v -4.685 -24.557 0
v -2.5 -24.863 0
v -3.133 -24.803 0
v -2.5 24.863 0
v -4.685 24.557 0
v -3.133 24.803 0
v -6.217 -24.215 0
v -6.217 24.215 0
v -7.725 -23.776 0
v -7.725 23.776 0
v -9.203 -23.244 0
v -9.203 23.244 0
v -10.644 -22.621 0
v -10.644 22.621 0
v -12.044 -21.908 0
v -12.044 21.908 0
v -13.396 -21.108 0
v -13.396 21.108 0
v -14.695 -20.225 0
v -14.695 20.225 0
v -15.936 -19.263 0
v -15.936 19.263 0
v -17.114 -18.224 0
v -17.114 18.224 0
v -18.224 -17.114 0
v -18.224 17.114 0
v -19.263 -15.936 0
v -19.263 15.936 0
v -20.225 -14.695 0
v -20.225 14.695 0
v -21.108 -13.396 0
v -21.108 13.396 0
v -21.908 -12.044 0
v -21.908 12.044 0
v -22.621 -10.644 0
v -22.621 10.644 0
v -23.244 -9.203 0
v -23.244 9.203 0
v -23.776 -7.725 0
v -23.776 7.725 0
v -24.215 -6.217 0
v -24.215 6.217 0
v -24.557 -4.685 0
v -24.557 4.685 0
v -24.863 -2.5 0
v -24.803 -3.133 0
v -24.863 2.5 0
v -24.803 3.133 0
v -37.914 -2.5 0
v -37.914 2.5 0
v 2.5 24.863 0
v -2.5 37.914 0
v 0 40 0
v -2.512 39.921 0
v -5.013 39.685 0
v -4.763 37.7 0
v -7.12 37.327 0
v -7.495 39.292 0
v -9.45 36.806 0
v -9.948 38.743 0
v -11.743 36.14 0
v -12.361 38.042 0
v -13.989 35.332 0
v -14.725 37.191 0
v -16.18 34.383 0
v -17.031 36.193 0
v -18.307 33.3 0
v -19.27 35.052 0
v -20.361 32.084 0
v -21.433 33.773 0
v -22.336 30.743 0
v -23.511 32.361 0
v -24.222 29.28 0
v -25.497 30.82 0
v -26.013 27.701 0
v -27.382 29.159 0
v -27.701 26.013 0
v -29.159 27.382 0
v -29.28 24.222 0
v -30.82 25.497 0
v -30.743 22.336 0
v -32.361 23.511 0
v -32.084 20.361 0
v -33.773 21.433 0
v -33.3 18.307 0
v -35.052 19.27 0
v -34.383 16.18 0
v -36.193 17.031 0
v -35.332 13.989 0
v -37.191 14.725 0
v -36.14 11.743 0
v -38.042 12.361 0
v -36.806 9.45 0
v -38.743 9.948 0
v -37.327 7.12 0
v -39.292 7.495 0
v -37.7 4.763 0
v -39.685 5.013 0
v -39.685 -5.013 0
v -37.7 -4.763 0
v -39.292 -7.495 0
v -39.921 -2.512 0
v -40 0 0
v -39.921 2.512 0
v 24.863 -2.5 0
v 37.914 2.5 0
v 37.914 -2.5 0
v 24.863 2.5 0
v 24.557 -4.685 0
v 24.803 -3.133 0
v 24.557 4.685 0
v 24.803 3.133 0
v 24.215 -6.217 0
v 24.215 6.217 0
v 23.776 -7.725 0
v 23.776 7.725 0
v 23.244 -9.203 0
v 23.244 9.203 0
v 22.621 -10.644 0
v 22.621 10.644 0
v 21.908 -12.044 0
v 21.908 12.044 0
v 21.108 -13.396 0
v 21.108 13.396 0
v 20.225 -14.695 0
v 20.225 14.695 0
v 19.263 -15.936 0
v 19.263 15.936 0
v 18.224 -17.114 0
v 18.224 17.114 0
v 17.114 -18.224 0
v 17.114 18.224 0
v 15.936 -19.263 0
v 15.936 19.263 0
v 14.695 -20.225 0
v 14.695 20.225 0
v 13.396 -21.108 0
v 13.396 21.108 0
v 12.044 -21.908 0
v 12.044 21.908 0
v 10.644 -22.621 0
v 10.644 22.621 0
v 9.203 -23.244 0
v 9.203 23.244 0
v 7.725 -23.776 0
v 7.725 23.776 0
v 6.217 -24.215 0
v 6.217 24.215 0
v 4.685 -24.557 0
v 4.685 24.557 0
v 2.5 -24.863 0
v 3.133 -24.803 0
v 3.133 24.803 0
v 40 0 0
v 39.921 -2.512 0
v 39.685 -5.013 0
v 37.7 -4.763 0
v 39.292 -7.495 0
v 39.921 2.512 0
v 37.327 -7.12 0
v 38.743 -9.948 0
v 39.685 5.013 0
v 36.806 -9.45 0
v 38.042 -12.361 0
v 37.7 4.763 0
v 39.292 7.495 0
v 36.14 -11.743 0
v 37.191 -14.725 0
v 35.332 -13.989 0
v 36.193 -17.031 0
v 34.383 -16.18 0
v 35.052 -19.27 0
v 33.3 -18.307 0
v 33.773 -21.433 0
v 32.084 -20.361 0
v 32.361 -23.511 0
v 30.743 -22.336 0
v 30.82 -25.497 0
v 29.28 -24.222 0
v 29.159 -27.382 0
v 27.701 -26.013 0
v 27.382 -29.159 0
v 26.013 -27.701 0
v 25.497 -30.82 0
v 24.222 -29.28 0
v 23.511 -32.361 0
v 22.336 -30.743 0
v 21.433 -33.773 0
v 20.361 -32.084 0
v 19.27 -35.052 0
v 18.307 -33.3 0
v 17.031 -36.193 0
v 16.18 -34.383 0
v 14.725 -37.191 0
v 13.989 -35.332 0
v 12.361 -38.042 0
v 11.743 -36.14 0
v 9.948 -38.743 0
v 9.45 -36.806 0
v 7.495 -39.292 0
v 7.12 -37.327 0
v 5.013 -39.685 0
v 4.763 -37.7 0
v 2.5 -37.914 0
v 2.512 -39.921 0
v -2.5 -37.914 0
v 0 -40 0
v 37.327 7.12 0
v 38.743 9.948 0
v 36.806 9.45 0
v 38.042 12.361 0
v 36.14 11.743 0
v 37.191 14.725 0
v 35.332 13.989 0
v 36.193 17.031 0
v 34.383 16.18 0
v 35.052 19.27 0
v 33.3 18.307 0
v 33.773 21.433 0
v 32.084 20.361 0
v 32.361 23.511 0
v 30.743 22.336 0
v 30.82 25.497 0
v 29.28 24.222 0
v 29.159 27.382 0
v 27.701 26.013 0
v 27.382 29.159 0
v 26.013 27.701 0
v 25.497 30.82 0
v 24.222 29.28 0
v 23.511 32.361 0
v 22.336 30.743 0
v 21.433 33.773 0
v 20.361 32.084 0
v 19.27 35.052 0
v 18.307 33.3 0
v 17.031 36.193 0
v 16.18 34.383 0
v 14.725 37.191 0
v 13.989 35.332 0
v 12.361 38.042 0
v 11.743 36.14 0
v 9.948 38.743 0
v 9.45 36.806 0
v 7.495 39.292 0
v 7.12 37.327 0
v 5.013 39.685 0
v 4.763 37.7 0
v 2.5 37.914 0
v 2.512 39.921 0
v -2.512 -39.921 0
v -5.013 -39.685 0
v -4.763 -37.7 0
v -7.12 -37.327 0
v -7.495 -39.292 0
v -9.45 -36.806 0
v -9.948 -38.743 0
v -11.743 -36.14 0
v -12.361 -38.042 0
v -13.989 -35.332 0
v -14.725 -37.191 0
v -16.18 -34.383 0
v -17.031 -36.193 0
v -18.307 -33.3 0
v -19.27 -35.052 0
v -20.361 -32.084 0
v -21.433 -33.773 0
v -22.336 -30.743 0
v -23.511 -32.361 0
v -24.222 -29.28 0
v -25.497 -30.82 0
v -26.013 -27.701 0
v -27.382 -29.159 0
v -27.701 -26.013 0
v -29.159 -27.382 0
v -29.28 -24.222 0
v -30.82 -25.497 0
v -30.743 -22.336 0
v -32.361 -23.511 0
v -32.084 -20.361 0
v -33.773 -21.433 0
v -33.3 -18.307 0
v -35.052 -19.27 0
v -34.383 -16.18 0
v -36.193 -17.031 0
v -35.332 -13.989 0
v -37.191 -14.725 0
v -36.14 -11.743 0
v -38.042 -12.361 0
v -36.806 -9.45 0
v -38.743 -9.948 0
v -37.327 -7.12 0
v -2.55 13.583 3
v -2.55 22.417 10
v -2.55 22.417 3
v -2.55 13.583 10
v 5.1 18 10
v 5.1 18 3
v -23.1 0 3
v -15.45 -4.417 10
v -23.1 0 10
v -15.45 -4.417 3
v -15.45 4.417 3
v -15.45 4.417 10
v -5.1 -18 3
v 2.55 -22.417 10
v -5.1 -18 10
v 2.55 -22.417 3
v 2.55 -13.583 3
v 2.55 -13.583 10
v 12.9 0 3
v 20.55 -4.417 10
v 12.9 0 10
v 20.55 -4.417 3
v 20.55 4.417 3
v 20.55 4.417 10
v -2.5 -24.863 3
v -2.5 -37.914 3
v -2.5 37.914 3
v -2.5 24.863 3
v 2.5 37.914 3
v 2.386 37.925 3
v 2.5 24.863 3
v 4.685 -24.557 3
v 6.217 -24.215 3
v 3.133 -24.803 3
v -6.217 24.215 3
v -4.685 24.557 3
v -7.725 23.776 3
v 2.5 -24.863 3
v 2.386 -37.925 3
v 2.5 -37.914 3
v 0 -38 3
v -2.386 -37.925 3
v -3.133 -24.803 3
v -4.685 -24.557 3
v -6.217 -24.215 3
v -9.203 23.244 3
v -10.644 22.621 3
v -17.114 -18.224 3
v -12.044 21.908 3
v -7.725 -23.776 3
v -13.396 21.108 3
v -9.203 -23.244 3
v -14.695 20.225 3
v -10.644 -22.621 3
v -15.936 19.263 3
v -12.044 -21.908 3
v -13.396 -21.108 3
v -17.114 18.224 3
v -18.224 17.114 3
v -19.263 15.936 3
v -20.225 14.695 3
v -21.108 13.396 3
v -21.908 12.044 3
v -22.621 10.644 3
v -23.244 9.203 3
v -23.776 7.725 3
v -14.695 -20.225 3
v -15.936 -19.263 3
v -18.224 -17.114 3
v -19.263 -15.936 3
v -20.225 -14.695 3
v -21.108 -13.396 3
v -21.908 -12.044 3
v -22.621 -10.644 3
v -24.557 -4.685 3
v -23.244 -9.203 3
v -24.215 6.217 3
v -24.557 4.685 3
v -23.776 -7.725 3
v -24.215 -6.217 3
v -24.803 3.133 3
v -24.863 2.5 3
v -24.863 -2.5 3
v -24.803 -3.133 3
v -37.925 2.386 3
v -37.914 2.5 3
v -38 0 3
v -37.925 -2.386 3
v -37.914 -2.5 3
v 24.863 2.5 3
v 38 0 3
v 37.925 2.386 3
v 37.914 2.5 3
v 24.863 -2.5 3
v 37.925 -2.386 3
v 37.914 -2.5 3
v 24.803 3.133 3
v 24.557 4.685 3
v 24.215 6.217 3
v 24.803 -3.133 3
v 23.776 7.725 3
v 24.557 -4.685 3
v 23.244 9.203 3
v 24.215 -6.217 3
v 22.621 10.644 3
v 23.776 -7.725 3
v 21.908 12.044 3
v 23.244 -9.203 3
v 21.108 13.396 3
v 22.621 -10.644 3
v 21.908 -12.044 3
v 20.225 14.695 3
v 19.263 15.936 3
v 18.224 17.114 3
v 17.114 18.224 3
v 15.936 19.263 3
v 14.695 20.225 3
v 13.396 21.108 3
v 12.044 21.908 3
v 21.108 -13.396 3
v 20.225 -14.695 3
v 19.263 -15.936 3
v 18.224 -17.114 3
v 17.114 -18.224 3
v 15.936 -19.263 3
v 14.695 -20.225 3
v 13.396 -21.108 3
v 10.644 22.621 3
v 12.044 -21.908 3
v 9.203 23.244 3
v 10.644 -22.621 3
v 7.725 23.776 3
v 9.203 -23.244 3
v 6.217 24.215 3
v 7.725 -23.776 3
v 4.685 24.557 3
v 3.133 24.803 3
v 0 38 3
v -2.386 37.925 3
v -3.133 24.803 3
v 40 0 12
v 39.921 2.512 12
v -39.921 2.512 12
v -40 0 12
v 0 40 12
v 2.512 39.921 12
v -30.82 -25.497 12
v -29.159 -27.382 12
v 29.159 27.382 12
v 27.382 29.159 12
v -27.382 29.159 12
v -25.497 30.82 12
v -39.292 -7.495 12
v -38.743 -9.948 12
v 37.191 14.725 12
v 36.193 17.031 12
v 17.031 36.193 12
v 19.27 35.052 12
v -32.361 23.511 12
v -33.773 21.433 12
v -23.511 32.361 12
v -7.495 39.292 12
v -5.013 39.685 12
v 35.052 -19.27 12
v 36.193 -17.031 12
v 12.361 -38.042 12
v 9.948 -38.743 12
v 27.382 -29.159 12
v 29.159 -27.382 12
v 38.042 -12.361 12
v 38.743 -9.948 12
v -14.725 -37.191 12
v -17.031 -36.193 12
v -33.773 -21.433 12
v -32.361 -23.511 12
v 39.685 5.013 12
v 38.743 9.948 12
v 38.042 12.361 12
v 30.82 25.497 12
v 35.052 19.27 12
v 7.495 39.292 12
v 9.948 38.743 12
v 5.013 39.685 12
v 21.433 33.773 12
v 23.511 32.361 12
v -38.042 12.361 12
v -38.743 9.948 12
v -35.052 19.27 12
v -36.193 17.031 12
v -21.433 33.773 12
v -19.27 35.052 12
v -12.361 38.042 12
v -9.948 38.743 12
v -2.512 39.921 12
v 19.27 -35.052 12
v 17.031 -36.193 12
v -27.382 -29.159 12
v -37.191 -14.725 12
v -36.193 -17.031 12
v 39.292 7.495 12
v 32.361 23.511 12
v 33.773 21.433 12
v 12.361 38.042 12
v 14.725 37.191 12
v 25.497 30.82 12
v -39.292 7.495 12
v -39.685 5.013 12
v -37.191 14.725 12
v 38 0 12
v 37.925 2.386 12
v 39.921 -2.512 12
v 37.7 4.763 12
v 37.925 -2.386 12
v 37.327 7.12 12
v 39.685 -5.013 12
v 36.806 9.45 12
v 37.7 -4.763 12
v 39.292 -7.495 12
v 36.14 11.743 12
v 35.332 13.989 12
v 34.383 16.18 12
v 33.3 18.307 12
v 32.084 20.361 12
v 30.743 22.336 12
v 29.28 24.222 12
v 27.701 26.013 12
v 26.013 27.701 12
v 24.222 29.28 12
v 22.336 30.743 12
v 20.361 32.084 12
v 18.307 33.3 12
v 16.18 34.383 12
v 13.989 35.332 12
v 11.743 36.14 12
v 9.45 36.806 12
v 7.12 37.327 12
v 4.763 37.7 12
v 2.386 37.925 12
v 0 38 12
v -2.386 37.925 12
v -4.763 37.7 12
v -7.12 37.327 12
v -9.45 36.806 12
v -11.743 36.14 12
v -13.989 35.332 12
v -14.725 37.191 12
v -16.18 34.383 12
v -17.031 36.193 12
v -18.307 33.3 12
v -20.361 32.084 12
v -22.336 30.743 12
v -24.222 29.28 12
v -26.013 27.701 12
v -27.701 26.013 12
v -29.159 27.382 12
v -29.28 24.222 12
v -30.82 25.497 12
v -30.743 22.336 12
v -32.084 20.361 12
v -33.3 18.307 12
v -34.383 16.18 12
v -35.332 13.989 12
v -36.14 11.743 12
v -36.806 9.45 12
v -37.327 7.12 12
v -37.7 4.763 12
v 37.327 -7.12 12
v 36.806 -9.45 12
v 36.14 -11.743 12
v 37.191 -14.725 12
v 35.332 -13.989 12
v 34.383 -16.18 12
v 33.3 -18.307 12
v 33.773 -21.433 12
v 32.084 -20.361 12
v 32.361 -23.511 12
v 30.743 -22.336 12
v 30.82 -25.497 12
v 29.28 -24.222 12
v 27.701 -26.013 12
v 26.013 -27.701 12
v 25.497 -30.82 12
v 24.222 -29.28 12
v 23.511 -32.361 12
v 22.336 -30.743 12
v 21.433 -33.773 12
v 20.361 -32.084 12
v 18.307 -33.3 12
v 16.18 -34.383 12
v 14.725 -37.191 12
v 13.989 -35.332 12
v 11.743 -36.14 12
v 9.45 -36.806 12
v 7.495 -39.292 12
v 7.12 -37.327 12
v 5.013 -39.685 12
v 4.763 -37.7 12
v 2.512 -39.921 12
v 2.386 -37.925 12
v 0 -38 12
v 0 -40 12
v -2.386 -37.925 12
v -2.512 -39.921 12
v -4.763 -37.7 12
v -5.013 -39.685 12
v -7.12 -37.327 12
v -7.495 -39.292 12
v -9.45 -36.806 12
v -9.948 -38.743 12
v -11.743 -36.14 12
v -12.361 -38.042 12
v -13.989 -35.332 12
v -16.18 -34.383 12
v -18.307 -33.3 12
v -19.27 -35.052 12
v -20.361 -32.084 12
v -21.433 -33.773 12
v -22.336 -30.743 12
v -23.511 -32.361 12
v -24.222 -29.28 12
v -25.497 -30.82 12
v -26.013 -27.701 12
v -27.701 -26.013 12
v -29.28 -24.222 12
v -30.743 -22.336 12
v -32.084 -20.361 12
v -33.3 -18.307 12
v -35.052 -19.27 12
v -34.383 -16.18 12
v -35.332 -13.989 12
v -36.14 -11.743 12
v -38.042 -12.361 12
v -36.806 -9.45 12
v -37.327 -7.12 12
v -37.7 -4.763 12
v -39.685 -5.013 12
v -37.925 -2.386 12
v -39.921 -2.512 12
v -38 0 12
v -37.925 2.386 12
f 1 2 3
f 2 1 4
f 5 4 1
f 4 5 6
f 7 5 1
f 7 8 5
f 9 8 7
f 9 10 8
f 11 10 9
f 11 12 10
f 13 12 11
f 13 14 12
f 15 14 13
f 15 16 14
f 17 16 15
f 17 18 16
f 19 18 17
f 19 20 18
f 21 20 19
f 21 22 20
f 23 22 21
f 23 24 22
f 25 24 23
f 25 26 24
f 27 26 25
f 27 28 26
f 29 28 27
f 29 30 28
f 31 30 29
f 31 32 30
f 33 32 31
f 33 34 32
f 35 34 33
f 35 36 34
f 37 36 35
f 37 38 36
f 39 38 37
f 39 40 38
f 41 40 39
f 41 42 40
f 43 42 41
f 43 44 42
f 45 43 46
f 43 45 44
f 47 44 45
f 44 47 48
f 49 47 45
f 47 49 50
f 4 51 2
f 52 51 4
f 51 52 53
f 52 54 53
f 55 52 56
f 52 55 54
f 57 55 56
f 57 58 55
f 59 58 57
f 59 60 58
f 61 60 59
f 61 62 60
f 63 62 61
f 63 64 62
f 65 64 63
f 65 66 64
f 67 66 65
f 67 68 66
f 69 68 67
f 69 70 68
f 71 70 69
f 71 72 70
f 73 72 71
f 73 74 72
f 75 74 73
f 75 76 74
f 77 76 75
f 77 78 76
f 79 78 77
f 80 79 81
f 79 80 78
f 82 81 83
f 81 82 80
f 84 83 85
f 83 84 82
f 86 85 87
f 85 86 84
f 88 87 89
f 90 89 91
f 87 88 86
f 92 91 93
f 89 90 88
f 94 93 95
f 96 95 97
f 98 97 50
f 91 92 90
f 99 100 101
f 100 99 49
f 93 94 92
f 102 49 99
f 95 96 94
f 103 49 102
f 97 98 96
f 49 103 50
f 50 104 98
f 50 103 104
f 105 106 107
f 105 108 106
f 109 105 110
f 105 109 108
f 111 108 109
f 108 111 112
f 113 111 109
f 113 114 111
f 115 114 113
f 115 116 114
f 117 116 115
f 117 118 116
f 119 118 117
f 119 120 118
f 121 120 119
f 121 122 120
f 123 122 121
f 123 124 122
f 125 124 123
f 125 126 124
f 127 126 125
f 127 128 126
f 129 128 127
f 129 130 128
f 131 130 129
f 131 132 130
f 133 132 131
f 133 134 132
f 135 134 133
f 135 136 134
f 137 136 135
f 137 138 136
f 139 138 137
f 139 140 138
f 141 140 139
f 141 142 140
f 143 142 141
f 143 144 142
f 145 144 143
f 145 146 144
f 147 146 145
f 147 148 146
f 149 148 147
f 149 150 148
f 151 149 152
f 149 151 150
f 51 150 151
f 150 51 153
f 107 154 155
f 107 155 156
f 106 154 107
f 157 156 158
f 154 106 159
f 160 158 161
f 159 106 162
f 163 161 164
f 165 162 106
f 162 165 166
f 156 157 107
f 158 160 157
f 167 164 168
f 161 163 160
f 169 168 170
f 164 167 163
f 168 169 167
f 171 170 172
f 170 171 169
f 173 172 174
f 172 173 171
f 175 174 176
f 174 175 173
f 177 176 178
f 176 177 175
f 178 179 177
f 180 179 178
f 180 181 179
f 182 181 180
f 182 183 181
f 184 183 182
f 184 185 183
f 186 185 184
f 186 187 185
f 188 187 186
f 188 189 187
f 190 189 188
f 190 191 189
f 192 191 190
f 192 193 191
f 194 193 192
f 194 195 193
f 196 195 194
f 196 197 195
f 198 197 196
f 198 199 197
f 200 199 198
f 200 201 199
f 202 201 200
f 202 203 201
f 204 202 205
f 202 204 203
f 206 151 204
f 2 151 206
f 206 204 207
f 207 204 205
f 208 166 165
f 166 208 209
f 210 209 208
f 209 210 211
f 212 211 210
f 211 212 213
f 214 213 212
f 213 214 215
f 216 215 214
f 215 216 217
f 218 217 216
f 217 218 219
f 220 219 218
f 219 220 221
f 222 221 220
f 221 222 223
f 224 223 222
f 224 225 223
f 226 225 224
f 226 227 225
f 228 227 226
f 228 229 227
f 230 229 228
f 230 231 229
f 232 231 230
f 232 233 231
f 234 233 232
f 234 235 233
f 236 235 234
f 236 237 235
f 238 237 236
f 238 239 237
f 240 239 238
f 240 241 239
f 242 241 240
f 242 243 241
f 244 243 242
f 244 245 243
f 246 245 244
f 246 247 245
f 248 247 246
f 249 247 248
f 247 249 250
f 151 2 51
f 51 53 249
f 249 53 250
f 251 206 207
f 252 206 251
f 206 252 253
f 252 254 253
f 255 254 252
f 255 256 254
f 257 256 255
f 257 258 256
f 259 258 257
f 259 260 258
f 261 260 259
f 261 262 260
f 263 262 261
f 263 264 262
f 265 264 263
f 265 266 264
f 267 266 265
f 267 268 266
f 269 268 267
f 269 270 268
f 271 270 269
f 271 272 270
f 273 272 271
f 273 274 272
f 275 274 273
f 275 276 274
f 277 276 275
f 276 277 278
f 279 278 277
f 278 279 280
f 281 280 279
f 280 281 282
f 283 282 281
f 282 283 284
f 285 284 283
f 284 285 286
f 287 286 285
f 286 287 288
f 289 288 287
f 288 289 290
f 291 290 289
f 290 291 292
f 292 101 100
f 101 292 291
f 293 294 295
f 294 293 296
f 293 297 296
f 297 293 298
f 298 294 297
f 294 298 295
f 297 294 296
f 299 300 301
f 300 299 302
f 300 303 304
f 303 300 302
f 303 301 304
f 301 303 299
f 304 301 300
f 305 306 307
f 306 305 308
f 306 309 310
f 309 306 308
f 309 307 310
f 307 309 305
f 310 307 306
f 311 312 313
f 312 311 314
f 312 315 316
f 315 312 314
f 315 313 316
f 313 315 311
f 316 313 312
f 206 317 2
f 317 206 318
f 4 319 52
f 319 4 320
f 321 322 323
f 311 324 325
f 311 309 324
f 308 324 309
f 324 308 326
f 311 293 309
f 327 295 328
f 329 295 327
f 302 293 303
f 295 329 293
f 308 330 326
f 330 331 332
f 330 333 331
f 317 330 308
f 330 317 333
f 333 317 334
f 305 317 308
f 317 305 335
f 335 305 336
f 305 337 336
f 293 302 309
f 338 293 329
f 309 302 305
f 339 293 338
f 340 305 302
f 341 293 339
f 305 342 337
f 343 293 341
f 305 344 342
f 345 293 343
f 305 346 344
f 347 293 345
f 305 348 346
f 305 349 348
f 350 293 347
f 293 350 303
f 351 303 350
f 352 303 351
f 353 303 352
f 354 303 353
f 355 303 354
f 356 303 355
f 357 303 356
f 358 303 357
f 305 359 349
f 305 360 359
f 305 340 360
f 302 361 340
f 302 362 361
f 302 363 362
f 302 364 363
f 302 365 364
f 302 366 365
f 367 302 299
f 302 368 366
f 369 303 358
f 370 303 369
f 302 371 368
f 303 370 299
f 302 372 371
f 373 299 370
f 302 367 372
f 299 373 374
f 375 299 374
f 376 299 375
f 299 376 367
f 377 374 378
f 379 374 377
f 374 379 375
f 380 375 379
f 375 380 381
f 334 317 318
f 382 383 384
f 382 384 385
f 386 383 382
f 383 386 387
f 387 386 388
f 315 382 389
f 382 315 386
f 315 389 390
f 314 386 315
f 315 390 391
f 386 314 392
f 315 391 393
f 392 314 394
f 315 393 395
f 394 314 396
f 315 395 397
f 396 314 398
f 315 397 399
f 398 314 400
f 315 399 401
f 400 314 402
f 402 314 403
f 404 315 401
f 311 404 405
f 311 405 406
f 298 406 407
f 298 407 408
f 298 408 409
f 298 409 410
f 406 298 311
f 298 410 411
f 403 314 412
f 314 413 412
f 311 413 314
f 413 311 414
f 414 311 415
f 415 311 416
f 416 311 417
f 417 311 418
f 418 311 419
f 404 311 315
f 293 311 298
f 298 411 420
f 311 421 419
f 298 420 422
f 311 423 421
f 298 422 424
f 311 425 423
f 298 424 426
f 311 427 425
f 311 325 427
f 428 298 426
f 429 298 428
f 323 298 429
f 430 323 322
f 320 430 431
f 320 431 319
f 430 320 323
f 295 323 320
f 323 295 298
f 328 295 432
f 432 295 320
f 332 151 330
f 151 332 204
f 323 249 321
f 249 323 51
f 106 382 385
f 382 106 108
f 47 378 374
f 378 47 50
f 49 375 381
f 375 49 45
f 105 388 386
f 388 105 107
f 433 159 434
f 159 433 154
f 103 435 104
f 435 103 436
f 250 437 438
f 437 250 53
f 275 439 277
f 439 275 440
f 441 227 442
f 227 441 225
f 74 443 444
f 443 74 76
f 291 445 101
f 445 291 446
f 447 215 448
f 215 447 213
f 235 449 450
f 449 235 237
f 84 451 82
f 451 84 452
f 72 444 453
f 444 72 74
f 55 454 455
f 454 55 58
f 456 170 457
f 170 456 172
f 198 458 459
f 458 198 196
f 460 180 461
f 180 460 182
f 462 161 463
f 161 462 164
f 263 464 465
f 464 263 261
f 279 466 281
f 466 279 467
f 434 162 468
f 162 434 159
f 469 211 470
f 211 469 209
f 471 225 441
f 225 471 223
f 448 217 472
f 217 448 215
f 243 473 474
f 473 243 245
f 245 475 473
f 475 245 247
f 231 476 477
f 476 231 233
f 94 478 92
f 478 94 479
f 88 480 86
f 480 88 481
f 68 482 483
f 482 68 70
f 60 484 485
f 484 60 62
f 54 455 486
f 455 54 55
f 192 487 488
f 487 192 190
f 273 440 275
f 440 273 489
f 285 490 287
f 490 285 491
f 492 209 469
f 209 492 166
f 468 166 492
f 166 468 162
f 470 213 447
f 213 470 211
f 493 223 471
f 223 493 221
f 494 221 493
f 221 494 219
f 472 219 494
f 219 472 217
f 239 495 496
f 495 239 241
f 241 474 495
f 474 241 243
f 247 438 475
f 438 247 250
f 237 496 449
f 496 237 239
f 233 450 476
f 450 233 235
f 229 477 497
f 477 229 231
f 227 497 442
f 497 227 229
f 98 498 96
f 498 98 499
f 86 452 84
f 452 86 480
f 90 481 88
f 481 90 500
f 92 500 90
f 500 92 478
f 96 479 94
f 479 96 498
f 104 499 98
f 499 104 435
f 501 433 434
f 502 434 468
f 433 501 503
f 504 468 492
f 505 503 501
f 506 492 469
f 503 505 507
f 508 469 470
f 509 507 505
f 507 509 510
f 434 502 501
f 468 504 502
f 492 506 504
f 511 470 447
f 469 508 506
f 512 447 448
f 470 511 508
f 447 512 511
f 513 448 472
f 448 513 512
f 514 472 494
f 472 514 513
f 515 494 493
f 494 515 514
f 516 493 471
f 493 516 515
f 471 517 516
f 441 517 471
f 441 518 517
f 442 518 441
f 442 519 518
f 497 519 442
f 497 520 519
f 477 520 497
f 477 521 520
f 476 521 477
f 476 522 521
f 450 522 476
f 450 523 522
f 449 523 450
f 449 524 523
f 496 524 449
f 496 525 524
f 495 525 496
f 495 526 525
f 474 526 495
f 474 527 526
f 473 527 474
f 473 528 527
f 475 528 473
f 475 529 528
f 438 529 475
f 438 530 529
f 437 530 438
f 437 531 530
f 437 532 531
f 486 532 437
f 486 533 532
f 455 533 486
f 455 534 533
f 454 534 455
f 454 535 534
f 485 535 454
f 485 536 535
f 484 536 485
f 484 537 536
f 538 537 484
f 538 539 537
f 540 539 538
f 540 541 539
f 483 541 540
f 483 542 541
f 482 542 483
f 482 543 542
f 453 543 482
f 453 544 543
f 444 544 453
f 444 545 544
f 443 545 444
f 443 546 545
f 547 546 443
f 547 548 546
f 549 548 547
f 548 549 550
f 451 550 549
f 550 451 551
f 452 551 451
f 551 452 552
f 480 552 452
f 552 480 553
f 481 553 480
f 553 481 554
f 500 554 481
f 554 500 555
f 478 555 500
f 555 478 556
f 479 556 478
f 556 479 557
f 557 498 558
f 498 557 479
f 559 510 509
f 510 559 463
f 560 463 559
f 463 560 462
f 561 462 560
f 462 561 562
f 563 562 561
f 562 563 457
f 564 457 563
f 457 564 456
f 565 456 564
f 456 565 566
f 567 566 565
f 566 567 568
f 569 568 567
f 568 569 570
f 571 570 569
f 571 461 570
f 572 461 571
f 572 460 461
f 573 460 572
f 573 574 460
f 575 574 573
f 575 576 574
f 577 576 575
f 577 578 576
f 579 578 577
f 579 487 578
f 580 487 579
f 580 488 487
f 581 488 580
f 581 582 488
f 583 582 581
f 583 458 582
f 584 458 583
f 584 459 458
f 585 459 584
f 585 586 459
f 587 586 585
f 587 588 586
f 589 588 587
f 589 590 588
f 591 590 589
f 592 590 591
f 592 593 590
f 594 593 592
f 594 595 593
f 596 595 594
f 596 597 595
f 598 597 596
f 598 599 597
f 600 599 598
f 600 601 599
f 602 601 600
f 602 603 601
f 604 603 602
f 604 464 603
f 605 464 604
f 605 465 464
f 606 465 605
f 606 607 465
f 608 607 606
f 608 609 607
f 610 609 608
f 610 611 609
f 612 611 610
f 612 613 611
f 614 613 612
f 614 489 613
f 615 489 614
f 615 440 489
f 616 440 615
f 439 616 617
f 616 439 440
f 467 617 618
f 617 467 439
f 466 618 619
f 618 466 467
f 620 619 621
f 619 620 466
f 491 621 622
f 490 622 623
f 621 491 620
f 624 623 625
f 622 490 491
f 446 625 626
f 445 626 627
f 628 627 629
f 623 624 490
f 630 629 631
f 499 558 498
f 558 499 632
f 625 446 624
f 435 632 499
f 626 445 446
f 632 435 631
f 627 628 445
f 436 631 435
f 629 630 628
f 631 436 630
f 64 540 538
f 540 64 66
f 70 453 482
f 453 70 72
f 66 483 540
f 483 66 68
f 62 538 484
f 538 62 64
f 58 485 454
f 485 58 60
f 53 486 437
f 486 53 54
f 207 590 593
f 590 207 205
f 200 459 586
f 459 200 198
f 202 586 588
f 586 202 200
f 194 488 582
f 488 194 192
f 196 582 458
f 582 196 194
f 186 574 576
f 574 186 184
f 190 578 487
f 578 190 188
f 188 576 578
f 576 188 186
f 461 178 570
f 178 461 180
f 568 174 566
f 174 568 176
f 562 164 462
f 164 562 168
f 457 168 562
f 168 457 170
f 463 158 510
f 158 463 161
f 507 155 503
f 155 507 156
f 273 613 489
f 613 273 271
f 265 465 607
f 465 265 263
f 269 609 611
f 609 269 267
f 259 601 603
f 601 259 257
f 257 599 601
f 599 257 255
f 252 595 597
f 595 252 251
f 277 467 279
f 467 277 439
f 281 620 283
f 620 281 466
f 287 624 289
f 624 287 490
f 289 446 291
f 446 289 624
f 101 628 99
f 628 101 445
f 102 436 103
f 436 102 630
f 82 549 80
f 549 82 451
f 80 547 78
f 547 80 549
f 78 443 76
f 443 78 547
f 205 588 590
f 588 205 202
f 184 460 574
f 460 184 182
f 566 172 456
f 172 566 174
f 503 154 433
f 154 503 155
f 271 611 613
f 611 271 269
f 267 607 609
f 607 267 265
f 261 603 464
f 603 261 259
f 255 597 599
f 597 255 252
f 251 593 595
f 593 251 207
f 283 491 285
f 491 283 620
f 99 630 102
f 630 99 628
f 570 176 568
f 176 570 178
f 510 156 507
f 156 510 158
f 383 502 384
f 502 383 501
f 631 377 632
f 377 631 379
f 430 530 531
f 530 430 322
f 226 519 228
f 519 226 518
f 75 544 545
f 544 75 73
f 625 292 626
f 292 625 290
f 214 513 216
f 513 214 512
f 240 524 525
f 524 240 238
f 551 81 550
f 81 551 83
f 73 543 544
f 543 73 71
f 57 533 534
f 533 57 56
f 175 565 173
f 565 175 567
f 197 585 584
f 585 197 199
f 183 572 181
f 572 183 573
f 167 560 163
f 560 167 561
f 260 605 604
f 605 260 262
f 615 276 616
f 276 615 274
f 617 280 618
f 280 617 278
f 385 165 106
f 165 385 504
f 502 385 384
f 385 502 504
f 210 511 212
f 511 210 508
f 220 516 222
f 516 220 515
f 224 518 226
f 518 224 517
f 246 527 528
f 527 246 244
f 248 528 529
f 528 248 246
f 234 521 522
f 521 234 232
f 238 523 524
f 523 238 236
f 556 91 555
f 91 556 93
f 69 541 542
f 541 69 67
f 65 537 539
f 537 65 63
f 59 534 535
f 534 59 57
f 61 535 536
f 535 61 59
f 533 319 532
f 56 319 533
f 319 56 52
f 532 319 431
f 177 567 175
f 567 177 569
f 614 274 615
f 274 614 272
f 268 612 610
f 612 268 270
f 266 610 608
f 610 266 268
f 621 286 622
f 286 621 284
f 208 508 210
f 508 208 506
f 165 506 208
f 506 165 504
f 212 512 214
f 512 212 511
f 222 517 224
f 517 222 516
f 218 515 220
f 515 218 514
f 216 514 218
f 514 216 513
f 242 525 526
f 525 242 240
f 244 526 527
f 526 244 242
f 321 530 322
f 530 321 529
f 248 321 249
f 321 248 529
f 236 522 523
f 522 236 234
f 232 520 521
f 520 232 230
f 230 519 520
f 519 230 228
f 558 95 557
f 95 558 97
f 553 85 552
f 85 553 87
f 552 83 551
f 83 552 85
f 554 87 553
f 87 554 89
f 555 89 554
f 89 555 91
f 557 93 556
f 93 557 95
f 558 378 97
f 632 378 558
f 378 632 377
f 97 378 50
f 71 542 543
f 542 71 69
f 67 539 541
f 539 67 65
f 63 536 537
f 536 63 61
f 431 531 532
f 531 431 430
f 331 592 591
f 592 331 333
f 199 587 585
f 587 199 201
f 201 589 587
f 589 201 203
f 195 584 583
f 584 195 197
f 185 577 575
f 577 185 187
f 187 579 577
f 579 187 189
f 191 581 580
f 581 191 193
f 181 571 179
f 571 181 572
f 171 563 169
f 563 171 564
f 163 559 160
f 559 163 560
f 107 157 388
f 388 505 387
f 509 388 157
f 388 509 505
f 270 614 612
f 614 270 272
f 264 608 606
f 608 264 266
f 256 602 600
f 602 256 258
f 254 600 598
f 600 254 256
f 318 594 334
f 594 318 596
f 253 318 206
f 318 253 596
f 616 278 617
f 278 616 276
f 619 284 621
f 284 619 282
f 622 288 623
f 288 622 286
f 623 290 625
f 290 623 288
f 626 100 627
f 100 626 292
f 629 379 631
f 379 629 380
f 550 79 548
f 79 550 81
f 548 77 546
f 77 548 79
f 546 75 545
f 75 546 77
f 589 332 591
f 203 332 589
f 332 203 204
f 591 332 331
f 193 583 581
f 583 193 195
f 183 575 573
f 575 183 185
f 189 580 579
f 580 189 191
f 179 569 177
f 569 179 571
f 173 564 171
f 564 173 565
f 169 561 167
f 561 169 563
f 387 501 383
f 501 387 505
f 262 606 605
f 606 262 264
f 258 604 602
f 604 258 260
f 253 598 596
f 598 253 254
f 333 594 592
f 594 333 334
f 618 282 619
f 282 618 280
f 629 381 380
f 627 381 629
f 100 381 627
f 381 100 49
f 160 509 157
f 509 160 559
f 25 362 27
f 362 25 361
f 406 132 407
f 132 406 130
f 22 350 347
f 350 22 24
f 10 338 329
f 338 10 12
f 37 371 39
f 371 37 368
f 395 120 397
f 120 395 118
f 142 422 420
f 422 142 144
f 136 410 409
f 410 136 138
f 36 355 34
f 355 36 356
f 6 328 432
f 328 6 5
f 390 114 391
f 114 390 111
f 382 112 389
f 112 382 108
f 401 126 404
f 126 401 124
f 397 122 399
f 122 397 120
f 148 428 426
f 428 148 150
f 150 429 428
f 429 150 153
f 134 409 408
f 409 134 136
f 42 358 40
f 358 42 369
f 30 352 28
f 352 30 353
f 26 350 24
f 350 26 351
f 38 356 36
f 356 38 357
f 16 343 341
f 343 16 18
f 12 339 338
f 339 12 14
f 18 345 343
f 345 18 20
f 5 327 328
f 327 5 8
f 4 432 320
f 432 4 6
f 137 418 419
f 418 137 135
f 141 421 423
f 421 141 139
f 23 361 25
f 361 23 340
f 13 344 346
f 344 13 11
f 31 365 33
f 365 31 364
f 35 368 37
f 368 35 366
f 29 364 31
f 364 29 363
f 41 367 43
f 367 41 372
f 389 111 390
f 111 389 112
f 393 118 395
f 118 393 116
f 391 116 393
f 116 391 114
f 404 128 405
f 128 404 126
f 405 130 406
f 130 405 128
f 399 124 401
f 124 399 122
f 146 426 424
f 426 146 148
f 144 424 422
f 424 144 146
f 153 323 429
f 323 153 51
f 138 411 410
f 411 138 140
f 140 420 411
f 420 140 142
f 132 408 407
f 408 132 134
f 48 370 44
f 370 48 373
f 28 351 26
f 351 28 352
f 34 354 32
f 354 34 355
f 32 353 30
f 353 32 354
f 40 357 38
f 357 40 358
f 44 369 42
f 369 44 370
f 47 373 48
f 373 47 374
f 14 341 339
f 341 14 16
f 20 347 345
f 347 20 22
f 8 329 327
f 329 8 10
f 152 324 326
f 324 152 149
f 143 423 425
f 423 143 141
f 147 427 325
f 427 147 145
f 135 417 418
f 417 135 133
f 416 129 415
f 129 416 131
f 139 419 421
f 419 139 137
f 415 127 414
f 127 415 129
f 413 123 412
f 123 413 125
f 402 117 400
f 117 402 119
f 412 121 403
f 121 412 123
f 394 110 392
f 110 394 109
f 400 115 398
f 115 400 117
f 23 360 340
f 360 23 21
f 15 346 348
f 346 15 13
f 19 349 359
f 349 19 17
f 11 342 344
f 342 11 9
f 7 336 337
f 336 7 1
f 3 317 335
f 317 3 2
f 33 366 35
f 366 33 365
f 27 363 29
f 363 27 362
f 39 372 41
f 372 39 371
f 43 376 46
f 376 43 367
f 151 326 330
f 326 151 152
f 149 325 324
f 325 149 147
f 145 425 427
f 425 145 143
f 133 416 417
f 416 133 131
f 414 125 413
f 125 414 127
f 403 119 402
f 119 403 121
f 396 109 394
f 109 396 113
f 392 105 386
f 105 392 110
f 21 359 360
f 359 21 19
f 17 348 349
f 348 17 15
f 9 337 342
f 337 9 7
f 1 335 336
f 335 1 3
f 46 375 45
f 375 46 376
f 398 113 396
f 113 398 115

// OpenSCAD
// file: utils/triangle_system.scad
//triangle_tube(20, 5, 5);
module triangle_tube(height,radius,wall)
{
  tubify(radius,wall) triangle_prism(height,radius);
}

//Tubifies any regular prism
module tubify(radius,wall)
{
  difference()
  {
    children(0);
    translate([0, 0, -0.1]) scale([(radius-wall)/radius, (radius-wall)/radius, 2]) children(0);
  }
}

module triangle_prism(height,radius)
{
  linear_extrude(height=height) triangle(radius);
}

module triangle(radius)
{
  o=radius/2;		//equivalent to radius*sin(30)
  a=radius*sqrt(3)/2;	//equivalent to radius*cos(30)
  polygon(points=[[-a,-o],[0,radius],[a,-o]],paths=[[0,1,2]]);
}
// main file
/**
* Info TODO
* Interzonas.info create piece mishtohit
**/

//utils triangle suport piece
include <utils/triangle_system.scad>;

//Const cylinder
cylinder_dim = 25;
cylinder_dim_gear =40;
height = 3;

//hole cones
pathRadius=36/2;
num_cap=4;


/**
* Init the piece
**/
main();
module main() {
  difference() {
    cylinder_base(cylinder_dim, height);
    //tabs(pathRadius, num_cap, height);
  }
  cylinder_hole_creator(pathRadius, num_cap, height);
  cyliner_gear(cylinder_dim_gear, height);
}

/**
* Modulo create gear
* TODO
**/
module cyliner_gear(cylinder_dim, height){
  height_gear = 4;
  gear_thickness =2;

  //TODO hardcode position
  translate([0, 0, height-1.5]) {
    cube(size=[5, cylinder_dim*2-0.4, height], center=true);
    cube(size=[cylinder_dim*2-0.4, 5, height], center=true);
  }
    translate([0, 0, height]) {
  }

  difference() {
    cylinder_base(cylinder_dim_gear, height*height_gear);
    cylinder_base(cylinder_dim_gear-gear_thickness, height*height_gear);
  }
}

/**
* Modulo create triagle support
* Params Distence bwteeen of support, num of support, height of support
**/
module cylinder_hole_creator(distancia, numero, alt) {
  triangle_data = [10, 5.1, 5.1, -90];
  for (i=[1:numero])  {
    translate([distancia*cos(i*(360/numero)),distancia*sin(i*(360/numero)),0]){
      if(i == 1){
        colores = "red";
        color(colores) {
          triangle_base(triangle_data[0], triangle_data[1], triangle_data[2], triangle_data[3]);
        }
      } else {
        colores = "green";
        color(colores) {
          triangle_base(triangle_data[0], triangle_data[1], triangle_data[2], -30);
        }
      }
    }
  }
}


/**
* Modulo create tabs of cap
**/
module tabs(distancia, numero, alt) {
  tabs_dimensions = [5, 10, 4];
  position = [-7.5, -5, 2];
  position_x = position[0];
  position_x_opos = abs(position_x) / 2;
  for (i=[1:numero])  {
    translate([distancia*cos(i*(360/numero)),distancia*sin(i*(360/numero)),0]){
      if(i == 1){
        translate([-7.5, -5, 2]) {
          cube(size=tabs_dimensions);
        }

      } else {
        translate([position_x_opos, position[1], position[2]]) {
          cube(size=tabs_dimensions);
        }

      }
    }
  }
}

/**
* Modulo  cylinder base
**/
module cylinder_base(diamentro, height) {
  cylinder(r=diamentro, h=height, $fn=100);
}

module triangle_base(height, radio_exterior, radio_interior, rotate_angle){
  rotate(rotate_angle){
    triangle_tube(height, radio_exterior, radio_interior);
  }
}
